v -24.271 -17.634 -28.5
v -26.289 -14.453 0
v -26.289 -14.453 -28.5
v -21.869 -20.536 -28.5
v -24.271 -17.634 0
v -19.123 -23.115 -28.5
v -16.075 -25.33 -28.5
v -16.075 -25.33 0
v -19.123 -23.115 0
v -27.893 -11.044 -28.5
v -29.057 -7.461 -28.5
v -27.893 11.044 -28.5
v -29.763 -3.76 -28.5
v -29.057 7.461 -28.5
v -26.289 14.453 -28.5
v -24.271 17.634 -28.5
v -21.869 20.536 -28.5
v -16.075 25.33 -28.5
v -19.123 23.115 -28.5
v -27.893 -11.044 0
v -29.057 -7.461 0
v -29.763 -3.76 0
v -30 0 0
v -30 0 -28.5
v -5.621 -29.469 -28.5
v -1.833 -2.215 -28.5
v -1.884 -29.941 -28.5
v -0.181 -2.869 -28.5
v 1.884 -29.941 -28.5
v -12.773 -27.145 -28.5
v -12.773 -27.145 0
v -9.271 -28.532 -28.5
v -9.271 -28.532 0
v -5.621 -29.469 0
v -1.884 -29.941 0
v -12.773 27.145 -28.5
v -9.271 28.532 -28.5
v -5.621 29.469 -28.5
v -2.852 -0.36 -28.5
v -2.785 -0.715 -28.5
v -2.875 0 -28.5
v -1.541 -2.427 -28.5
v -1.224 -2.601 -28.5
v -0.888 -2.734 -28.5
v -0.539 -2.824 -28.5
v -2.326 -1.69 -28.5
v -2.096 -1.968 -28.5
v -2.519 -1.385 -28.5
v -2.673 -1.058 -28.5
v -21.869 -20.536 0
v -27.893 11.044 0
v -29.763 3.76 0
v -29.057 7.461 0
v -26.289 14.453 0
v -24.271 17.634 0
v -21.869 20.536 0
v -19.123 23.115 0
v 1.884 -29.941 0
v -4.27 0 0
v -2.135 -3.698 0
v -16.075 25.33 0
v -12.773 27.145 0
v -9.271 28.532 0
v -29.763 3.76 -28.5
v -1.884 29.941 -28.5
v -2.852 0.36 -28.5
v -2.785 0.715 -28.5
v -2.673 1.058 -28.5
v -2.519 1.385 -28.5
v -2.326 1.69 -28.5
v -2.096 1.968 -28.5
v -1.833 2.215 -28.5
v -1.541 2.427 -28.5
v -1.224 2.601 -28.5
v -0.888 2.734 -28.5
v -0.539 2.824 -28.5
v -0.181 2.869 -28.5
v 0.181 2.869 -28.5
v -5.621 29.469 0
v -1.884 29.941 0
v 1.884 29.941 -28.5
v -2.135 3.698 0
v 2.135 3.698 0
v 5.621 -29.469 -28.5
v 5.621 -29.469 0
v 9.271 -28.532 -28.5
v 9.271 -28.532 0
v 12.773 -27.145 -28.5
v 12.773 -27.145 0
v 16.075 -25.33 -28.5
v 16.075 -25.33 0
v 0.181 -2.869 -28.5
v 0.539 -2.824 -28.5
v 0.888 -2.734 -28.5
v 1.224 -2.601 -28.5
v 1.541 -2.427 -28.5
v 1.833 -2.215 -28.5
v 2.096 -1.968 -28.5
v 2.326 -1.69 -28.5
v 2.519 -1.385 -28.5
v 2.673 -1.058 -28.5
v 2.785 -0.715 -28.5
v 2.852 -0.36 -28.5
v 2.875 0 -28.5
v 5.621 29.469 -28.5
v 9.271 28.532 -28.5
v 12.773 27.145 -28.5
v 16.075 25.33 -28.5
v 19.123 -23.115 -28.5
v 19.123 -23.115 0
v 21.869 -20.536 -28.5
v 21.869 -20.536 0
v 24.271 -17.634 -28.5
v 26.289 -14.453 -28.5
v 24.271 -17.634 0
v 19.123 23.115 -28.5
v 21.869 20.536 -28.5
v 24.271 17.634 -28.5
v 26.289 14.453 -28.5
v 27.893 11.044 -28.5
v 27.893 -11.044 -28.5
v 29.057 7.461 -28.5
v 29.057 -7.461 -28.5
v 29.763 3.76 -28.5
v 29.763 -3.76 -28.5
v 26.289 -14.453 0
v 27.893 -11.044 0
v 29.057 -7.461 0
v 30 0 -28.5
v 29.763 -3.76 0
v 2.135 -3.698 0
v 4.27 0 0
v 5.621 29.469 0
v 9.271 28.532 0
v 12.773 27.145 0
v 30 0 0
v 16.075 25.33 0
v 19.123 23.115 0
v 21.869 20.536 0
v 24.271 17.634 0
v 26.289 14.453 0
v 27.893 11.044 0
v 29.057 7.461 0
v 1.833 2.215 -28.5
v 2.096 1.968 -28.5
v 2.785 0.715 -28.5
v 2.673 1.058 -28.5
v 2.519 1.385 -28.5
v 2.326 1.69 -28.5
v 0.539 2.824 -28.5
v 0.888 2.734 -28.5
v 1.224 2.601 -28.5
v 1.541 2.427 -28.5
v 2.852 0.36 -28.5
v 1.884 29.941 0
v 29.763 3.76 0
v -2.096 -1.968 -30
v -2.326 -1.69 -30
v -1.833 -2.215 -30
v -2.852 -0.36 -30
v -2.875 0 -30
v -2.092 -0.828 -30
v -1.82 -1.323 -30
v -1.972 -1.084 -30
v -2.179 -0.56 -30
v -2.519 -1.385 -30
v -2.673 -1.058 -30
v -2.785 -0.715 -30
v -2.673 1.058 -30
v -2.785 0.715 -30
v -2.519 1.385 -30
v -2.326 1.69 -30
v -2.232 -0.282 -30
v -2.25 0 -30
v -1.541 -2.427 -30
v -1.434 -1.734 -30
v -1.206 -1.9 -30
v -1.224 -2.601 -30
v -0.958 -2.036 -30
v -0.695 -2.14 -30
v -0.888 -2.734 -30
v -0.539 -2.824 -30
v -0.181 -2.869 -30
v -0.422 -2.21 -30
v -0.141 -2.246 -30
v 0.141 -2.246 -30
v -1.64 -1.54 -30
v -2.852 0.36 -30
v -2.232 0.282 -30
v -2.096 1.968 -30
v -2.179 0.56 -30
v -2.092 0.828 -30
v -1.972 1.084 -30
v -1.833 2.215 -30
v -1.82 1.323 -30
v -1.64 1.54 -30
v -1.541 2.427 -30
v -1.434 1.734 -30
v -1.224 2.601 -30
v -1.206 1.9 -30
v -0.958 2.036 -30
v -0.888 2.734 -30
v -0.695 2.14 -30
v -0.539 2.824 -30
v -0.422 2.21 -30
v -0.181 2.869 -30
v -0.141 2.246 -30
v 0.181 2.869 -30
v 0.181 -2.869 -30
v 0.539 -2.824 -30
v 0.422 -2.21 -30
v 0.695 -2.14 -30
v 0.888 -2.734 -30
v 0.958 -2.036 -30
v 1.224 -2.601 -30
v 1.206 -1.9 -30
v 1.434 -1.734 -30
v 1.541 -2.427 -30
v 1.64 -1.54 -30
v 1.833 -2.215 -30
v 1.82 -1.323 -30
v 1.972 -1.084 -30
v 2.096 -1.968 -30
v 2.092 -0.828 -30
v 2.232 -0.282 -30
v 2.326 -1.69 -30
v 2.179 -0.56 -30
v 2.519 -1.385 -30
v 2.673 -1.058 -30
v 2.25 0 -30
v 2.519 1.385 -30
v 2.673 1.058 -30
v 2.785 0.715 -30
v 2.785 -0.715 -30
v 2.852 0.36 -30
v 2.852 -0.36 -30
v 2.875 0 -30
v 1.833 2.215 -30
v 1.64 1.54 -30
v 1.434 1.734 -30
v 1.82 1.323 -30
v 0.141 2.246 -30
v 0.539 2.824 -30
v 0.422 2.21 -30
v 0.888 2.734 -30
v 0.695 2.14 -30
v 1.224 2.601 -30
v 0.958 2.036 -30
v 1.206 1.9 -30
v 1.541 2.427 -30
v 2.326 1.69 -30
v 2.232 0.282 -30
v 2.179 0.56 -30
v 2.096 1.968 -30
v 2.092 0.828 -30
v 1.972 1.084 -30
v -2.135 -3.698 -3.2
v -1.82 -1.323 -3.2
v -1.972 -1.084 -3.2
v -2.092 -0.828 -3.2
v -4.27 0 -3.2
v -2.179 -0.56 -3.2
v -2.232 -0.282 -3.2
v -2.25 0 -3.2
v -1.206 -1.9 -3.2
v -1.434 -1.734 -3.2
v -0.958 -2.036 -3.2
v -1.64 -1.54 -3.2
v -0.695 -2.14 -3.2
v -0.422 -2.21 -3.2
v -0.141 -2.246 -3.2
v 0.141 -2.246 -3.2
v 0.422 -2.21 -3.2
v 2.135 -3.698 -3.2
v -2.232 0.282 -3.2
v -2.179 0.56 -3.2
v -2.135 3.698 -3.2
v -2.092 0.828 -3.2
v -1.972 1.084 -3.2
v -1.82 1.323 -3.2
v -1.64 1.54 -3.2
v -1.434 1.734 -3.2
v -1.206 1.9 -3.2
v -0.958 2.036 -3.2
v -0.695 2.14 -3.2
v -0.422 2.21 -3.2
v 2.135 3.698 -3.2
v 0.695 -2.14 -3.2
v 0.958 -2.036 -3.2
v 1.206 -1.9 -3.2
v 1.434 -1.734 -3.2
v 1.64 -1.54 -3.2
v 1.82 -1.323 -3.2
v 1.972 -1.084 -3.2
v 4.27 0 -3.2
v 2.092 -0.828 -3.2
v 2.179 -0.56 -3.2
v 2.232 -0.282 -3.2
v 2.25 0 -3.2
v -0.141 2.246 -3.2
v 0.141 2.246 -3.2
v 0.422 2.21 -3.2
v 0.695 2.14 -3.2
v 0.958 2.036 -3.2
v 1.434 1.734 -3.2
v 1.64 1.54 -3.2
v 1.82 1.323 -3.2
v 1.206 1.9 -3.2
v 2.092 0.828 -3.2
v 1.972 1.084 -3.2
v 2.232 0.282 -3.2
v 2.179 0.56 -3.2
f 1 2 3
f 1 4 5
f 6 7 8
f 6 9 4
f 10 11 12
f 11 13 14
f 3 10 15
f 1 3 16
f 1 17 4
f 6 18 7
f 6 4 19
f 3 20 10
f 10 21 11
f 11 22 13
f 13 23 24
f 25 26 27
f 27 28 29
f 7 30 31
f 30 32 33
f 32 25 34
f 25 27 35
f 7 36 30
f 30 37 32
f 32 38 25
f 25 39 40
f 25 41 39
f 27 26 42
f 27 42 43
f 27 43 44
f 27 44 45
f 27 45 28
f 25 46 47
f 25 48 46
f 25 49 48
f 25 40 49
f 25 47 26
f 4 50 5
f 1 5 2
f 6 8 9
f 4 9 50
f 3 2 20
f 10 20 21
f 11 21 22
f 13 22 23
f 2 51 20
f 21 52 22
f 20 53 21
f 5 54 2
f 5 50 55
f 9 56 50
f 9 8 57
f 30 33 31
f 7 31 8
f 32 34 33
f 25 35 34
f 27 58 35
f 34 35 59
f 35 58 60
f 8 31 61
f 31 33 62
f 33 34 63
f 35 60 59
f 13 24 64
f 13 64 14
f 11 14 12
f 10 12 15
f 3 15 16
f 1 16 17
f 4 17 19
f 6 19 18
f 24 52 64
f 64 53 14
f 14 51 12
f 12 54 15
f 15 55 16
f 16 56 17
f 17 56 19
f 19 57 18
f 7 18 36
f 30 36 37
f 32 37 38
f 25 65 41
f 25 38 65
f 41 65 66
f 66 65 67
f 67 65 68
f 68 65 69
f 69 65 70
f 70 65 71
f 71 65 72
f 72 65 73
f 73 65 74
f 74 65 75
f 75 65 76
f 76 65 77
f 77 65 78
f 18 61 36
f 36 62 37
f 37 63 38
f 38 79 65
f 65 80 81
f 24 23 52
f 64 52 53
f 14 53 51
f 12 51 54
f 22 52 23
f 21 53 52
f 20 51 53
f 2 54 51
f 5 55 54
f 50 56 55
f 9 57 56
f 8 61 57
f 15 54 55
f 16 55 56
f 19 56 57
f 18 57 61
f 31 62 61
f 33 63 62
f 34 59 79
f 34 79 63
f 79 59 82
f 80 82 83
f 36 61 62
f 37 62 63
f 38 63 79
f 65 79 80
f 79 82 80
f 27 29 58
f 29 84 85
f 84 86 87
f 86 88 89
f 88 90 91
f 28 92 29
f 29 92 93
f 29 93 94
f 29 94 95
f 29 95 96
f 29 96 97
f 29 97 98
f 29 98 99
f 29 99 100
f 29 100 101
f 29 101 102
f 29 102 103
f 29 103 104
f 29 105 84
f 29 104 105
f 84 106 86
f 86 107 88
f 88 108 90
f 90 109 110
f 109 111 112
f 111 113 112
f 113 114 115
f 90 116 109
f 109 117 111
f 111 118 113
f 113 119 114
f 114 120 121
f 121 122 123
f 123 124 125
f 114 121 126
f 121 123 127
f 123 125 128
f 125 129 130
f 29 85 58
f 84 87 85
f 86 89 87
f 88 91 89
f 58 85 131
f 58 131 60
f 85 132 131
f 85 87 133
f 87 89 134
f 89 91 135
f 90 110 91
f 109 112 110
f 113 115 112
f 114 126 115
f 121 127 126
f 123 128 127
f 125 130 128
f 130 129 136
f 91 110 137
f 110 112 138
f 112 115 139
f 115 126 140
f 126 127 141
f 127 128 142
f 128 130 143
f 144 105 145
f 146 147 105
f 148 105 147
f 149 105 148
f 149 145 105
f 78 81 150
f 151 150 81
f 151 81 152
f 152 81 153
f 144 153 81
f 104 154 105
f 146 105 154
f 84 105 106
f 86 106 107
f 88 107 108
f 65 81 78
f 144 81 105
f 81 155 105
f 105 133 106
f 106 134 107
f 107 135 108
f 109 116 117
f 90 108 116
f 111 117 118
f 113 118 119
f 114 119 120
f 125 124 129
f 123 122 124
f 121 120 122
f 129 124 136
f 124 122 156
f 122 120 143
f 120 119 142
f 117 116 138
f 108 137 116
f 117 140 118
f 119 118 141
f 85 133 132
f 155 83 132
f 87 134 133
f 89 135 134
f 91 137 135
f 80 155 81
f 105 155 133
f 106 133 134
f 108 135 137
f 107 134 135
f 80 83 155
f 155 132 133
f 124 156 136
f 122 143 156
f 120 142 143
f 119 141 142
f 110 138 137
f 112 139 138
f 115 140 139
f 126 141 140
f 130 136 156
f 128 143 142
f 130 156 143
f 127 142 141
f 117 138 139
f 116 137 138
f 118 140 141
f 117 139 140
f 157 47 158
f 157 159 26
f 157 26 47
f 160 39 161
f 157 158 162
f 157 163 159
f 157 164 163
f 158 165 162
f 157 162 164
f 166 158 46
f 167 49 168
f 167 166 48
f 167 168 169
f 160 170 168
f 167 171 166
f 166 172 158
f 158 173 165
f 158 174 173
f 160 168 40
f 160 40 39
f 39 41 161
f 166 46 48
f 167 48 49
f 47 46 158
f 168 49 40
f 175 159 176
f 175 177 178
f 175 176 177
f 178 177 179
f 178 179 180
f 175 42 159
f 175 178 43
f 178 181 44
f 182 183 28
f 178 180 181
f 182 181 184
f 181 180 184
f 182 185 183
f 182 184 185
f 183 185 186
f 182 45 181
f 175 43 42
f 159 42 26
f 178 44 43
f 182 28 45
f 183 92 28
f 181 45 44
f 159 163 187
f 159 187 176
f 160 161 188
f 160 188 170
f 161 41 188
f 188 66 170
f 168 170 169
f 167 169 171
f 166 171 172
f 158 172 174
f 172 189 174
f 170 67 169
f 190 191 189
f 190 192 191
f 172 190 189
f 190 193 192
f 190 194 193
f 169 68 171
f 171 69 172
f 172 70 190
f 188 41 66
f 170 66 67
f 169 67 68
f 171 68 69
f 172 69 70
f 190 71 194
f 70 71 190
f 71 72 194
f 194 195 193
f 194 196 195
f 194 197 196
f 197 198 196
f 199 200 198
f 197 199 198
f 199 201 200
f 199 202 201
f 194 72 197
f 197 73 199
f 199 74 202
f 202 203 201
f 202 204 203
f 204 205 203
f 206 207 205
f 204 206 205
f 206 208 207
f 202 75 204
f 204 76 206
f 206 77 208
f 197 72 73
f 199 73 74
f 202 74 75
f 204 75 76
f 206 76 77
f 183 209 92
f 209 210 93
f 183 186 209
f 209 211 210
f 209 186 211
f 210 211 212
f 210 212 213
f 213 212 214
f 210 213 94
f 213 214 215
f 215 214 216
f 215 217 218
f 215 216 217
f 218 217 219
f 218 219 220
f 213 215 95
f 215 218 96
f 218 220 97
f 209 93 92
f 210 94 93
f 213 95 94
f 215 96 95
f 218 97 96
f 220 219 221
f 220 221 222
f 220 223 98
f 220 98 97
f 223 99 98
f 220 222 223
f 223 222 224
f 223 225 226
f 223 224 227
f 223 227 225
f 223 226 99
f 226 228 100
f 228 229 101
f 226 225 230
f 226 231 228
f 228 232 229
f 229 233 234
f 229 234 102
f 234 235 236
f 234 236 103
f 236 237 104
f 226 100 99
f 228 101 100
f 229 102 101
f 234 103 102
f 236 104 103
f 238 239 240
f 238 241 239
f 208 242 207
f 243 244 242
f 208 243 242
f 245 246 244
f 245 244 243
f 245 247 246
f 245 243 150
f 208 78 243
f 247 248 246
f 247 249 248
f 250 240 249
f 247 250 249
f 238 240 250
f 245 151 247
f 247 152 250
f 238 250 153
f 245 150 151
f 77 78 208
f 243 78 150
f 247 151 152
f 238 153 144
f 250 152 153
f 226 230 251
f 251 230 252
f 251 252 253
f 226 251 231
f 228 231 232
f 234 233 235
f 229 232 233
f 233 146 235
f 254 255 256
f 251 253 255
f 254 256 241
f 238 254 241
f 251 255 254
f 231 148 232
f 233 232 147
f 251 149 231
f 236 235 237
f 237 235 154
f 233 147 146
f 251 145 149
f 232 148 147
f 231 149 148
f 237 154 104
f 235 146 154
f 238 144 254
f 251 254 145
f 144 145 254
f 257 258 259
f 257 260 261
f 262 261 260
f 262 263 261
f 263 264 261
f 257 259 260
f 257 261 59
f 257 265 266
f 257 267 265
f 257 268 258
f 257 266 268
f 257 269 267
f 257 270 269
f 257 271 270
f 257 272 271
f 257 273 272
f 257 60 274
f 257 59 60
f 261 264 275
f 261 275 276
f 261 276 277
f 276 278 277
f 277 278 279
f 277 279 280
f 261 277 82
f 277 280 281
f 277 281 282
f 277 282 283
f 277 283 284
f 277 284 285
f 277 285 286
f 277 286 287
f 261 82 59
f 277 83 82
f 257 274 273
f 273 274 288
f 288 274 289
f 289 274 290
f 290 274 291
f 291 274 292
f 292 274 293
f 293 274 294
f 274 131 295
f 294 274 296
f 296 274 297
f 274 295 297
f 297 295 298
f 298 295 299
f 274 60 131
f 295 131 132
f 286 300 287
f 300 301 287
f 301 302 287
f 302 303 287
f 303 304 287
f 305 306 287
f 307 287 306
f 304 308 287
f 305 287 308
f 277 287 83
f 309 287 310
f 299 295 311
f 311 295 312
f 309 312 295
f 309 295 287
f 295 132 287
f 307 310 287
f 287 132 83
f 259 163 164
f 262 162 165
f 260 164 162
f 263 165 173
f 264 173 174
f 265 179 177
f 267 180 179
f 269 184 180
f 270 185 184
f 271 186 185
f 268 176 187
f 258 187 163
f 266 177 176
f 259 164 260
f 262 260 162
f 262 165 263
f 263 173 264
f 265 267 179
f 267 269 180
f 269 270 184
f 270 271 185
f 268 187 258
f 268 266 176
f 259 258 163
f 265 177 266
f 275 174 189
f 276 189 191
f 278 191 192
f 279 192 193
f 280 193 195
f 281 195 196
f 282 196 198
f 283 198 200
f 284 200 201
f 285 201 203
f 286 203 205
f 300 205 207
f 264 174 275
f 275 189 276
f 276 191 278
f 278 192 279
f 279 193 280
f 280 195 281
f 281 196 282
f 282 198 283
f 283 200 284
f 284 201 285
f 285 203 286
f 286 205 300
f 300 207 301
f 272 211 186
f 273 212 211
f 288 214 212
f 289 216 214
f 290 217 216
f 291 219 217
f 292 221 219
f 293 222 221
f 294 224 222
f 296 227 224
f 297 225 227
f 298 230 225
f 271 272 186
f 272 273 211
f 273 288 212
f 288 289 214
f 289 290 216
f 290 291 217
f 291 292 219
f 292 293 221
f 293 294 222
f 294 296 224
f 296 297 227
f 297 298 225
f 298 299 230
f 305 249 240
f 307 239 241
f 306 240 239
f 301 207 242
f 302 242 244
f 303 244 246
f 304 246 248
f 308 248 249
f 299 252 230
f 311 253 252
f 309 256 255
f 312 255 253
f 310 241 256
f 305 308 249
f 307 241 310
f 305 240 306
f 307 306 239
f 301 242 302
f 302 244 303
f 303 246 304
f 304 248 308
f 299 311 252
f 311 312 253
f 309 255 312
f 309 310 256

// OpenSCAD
$fn = 50;


difference() {
	union() {
		translate(v = [0, 0, -28.5000000000]) {
			cylinder(h = 28.5000000000, r = 30.0000000000);
		}
		#translate(v = [0, 0, -30.0000000000]) {
			cylinder(h = 30, r = 2.8750000000);
		}
	}
	union() {
		translate(v = [0, 0, 0]) {
			rotate(a = [0, 0, 0]) {
				difference() {
					union() {
						translate(v = [0, 0, -3.2000000000]) {
							linear_extrude(height = 3.2000000000) {
								polygon(points = [[4.2698000000, 0.0000000000], [2.1349000000, 3.6977552691], [-2.1349000000, 3.6977552691], [-4.2698000000, 0.0000000000], [-2.1349000000, -3.6977552691], [2.1349000000, -3.6977552691]]);
							}
						}
					}
					union();
				}
			}
		}
		#translate(v = [0, 0, -100.0000000000]) {
			cylinder(h = 200, r = 2.2500000000);
		}
	}
}
